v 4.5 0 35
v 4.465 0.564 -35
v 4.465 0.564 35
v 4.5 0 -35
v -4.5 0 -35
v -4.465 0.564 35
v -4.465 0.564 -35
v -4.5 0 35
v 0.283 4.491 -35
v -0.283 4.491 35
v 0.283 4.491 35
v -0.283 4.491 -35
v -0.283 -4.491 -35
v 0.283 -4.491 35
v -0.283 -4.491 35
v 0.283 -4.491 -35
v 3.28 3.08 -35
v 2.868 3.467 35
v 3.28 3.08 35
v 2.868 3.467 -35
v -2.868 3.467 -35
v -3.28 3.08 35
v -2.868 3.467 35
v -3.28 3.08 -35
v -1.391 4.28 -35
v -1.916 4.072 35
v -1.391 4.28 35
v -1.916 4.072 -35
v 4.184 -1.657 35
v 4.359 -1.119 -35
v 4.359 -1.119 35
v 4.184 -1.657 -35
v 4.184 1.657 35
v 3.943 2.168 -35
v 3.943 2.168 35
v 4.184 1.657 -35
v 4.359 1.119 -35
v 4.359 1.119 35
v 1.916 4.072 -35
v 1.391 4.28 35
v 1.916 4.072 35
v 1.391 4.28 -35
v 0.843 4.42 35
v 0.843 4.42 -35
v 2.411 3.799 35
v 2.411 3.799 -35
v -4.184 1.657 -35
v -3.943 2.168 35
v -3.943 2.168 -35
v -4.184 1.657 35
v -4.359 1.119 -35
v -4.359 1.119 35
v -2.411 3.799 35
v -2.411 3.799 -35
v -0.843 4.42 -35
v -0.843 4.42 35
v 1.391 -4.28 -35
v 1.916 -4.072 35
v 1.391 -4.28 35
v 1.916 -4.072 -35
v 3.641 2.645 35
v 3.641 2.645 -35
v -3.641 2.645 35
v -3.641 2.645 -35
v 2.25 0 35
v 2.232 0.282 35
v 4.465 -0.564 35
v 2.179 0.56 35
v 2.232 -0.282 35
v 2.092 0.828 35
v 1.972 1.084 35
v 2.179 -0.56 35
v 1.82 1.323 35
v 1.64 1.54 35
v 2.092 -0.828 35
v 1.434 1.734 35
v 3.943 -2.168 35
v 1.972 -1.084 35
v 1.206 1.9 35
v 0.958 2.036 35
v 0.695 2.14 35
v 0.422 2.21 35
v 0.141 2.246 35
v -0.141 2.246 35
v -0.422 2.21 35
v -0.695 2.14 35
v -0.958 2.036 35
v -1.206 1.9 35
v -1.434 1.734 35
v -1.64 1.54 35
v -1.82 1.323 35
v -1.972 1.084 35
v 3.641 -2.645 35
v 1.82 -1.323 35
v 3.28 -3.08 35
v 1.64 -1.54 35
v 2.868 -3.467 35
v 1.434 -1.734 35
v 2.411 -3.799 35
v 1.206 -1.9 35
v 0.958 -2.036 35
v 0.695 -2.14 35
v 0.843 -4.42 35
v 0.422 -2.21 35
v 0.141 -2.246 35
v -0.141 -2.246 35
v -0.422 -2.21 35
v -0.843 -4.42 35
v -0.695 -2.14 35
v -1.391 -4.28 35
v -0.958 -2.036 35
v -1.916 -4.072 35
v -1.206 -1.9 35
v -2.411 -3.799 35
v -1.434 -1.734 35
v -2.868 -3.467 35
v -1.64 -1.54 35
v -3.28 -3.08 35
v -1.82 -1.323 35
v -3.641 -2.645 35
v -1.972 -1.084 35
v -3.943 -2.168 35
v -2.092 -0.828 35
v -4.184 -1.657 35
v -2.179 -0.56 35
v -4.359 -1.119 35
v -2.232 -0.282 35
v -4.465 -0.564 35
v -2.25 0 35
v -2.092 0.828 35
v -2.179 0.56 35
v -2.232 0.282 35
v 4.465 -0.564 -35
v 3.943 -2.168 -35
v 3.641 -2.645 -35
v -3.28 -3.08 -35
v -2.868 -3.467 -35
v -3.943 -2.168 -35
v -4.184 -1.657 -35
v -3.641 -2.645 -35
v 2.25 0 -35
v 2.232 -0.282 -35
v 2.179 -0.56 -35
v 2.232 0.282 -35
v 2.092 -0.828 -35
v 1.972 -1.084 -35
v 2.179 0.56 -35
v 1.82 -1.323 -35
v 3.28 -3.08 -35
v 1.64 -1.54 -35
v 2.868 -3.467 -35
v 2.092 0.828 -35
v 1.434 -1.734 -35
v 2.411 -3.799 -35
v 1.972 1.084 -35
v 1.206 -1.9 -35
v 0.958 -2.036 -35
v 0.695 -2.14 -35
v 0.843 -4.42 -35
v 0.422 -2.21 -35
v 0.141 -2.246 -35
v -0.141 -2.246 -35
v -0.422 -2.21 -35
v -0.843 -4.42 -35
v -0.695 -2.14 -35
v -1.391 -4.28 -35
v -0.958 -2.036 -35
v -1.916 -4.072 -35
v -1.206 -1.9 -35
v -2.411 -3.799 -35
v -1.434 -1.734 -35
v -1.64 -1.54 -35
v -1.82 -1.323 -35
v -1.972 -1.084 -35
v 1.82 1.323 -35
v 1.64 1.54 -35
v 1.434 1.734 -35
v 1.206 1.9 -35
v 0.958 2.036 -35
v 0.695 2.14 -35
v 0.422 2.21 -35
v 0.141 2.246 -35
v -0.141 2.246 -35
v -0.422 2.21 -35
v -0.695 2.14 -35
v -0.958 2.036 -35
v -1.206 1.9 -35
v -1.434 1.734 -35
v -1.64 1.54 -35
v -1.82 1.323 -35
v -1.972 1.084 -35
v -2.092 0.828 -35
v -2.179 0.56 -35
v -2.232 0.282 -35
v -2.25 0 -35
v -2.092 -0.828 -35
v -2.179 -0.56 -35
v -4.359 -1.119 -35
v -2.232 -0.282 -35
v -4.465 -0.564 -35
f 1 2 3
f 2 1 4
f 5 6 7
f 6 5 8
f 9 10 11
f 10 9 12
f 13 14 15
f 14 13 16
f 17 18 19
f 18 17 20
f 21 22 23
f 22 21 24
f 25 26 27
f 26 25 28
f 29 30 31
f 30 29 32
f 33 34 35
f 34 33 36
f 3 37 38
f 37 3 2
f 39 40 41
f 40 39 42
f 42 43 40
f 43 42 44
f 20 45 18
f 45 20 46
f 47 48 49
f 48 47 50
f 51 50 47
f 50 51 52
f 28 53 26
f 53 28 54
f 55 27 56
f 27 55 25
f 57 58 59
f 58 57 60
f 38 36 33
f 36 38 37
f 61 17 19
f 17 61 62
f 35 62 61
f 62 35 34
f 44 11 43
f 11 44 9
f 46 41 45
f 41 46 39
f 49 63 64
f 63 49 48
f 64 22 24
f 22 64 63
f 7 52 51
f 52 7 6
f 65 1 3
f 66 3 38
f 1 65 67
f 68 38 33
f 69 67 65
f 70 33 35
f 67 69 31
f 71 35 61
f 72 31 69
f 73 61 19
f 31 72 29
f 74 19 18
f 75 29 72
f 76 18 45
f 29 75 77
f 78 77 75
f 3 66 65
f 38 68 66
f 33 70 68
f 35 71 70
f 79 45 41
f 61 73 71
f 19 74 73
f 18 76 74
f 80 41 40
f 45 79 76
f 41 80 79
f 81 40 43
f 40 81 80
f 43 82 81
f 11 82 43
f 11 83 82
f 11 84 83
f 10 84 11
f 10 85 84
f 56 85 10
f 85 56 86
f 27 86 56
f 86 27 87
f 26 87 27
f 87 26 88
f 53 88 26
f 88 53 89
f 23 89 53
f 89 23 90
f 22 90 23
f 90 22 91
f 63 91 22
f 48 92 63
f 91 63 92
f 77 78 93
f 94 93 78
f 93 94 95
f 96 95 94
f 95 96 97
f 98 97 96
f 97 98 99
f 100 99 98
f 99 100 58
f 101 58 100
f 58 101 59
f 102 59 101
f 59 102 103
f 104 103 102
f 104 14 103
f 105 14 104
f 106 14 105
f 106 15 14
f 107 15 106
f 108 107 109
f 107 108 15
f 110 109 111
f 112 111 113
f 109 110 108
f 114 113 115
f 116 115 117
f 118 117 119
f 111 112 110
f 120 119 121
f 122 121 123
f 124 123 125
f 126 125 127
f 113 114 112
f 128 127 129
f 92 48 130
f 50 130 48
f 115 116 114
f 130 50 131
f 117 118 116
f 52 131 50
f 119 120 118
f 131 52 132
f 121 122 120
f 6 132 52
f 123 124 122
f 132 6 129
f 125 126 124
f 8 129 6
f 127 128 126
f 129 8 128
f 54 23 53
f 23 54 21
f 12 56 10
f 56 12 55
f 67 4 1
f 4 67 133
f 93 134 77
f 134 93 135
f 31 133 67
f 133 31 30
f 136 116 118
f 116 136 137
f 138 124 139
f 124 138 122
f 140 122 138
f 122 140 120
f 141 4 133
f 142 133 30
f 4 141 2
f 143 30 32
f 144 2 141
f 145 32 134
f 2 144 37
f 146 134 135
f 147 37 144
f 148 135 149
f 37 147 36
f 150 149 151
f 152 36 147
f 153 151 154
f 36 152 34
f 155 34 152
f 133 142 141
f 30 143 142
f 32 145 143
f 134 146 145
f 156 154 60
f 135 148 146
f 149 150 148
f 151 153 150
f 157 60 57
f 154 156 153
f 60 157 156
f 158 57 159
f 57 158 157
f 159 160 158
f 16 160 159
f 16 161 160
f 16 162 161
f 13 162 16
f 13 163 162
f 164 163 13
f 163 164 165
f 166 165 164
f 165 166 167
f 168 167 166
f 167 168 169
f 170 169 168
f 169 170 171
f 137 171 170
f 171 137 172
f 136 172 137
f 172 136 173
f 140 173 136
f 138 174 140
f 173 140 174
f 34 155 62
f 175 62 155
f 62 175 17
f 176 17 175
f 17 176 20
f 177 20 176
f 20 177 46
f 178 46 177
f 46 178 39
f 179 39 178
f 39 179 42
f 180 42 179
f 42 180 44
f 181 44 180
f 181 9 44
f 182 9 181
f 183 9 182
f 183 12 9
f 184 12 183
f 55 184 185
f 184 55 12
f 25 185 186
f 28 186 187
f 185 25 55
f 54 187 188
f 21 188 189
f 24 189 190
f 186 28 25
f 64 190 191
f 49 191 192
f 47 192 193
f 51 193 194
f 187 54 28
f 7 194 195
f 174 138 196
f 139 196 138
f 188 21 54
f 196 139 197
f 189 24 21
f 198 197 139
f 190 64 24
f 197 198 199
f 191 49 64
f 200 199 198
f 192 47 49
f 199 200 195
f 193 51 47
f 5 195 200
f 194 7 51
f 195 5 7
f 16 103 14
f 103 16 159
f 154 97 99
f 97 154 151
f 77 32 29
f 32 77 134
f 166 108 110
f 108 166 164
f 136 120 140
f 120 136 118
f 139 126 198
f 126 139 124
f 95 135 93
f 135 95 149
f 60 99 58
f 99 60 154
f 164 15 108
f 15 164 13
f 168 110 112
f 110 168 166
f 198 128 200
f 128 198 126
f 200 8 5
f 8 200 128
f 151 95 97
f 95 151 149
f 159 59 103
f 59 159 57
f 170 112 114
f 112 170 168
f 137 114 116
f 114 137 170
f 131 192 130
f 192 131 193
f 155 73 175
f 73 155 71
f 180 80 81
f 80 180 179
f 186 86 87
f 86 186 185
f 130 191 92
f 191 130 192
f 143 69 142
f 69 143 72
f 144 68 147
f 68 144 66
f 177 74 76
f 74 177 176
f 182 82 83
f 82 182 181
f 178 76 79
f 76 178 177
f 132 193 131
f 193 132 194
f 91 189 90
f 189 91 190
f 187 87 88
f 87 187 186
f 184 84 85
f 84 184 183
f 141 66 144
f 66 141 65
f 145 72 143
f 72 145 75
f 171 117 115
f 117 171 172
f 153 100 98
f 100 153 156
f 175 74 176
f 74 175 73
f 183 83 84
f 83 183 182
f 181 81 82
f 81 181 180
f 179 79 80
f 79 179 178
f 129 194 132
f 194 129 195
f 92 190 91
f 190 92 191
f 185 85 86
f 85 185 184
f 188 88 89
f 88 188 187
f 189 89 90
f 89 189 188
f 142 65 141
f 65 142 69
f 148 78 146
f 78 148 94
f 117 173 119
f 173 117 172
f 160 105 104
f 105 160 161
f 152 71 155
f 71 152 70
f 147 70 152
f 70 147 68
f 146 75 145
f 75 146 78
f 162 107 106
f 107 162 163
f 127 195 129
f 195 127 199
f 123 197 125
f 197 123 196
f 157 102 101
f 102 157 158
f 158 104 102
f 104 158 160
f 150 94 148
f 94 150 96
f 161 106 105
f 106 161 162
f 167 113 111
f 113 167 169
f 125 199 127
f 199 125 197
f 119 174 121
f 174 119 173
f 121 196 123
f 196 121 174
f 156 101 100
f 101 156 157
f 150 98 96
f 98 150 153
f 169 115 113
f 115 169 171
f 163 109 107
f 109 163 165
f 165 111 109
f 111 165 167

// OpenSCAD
$fn = 50;


difference() {
	union() {
		translate(v = [0, 0, -35.0000000000]) {
			cylinder(h = 70, r = 4.5000000000);
		}
	}
	union() {
		translate(v = [0, 0, -100.0000000000]) {
			cylinder(h = 200, r = 2.2500000000);
		}
	}
}
